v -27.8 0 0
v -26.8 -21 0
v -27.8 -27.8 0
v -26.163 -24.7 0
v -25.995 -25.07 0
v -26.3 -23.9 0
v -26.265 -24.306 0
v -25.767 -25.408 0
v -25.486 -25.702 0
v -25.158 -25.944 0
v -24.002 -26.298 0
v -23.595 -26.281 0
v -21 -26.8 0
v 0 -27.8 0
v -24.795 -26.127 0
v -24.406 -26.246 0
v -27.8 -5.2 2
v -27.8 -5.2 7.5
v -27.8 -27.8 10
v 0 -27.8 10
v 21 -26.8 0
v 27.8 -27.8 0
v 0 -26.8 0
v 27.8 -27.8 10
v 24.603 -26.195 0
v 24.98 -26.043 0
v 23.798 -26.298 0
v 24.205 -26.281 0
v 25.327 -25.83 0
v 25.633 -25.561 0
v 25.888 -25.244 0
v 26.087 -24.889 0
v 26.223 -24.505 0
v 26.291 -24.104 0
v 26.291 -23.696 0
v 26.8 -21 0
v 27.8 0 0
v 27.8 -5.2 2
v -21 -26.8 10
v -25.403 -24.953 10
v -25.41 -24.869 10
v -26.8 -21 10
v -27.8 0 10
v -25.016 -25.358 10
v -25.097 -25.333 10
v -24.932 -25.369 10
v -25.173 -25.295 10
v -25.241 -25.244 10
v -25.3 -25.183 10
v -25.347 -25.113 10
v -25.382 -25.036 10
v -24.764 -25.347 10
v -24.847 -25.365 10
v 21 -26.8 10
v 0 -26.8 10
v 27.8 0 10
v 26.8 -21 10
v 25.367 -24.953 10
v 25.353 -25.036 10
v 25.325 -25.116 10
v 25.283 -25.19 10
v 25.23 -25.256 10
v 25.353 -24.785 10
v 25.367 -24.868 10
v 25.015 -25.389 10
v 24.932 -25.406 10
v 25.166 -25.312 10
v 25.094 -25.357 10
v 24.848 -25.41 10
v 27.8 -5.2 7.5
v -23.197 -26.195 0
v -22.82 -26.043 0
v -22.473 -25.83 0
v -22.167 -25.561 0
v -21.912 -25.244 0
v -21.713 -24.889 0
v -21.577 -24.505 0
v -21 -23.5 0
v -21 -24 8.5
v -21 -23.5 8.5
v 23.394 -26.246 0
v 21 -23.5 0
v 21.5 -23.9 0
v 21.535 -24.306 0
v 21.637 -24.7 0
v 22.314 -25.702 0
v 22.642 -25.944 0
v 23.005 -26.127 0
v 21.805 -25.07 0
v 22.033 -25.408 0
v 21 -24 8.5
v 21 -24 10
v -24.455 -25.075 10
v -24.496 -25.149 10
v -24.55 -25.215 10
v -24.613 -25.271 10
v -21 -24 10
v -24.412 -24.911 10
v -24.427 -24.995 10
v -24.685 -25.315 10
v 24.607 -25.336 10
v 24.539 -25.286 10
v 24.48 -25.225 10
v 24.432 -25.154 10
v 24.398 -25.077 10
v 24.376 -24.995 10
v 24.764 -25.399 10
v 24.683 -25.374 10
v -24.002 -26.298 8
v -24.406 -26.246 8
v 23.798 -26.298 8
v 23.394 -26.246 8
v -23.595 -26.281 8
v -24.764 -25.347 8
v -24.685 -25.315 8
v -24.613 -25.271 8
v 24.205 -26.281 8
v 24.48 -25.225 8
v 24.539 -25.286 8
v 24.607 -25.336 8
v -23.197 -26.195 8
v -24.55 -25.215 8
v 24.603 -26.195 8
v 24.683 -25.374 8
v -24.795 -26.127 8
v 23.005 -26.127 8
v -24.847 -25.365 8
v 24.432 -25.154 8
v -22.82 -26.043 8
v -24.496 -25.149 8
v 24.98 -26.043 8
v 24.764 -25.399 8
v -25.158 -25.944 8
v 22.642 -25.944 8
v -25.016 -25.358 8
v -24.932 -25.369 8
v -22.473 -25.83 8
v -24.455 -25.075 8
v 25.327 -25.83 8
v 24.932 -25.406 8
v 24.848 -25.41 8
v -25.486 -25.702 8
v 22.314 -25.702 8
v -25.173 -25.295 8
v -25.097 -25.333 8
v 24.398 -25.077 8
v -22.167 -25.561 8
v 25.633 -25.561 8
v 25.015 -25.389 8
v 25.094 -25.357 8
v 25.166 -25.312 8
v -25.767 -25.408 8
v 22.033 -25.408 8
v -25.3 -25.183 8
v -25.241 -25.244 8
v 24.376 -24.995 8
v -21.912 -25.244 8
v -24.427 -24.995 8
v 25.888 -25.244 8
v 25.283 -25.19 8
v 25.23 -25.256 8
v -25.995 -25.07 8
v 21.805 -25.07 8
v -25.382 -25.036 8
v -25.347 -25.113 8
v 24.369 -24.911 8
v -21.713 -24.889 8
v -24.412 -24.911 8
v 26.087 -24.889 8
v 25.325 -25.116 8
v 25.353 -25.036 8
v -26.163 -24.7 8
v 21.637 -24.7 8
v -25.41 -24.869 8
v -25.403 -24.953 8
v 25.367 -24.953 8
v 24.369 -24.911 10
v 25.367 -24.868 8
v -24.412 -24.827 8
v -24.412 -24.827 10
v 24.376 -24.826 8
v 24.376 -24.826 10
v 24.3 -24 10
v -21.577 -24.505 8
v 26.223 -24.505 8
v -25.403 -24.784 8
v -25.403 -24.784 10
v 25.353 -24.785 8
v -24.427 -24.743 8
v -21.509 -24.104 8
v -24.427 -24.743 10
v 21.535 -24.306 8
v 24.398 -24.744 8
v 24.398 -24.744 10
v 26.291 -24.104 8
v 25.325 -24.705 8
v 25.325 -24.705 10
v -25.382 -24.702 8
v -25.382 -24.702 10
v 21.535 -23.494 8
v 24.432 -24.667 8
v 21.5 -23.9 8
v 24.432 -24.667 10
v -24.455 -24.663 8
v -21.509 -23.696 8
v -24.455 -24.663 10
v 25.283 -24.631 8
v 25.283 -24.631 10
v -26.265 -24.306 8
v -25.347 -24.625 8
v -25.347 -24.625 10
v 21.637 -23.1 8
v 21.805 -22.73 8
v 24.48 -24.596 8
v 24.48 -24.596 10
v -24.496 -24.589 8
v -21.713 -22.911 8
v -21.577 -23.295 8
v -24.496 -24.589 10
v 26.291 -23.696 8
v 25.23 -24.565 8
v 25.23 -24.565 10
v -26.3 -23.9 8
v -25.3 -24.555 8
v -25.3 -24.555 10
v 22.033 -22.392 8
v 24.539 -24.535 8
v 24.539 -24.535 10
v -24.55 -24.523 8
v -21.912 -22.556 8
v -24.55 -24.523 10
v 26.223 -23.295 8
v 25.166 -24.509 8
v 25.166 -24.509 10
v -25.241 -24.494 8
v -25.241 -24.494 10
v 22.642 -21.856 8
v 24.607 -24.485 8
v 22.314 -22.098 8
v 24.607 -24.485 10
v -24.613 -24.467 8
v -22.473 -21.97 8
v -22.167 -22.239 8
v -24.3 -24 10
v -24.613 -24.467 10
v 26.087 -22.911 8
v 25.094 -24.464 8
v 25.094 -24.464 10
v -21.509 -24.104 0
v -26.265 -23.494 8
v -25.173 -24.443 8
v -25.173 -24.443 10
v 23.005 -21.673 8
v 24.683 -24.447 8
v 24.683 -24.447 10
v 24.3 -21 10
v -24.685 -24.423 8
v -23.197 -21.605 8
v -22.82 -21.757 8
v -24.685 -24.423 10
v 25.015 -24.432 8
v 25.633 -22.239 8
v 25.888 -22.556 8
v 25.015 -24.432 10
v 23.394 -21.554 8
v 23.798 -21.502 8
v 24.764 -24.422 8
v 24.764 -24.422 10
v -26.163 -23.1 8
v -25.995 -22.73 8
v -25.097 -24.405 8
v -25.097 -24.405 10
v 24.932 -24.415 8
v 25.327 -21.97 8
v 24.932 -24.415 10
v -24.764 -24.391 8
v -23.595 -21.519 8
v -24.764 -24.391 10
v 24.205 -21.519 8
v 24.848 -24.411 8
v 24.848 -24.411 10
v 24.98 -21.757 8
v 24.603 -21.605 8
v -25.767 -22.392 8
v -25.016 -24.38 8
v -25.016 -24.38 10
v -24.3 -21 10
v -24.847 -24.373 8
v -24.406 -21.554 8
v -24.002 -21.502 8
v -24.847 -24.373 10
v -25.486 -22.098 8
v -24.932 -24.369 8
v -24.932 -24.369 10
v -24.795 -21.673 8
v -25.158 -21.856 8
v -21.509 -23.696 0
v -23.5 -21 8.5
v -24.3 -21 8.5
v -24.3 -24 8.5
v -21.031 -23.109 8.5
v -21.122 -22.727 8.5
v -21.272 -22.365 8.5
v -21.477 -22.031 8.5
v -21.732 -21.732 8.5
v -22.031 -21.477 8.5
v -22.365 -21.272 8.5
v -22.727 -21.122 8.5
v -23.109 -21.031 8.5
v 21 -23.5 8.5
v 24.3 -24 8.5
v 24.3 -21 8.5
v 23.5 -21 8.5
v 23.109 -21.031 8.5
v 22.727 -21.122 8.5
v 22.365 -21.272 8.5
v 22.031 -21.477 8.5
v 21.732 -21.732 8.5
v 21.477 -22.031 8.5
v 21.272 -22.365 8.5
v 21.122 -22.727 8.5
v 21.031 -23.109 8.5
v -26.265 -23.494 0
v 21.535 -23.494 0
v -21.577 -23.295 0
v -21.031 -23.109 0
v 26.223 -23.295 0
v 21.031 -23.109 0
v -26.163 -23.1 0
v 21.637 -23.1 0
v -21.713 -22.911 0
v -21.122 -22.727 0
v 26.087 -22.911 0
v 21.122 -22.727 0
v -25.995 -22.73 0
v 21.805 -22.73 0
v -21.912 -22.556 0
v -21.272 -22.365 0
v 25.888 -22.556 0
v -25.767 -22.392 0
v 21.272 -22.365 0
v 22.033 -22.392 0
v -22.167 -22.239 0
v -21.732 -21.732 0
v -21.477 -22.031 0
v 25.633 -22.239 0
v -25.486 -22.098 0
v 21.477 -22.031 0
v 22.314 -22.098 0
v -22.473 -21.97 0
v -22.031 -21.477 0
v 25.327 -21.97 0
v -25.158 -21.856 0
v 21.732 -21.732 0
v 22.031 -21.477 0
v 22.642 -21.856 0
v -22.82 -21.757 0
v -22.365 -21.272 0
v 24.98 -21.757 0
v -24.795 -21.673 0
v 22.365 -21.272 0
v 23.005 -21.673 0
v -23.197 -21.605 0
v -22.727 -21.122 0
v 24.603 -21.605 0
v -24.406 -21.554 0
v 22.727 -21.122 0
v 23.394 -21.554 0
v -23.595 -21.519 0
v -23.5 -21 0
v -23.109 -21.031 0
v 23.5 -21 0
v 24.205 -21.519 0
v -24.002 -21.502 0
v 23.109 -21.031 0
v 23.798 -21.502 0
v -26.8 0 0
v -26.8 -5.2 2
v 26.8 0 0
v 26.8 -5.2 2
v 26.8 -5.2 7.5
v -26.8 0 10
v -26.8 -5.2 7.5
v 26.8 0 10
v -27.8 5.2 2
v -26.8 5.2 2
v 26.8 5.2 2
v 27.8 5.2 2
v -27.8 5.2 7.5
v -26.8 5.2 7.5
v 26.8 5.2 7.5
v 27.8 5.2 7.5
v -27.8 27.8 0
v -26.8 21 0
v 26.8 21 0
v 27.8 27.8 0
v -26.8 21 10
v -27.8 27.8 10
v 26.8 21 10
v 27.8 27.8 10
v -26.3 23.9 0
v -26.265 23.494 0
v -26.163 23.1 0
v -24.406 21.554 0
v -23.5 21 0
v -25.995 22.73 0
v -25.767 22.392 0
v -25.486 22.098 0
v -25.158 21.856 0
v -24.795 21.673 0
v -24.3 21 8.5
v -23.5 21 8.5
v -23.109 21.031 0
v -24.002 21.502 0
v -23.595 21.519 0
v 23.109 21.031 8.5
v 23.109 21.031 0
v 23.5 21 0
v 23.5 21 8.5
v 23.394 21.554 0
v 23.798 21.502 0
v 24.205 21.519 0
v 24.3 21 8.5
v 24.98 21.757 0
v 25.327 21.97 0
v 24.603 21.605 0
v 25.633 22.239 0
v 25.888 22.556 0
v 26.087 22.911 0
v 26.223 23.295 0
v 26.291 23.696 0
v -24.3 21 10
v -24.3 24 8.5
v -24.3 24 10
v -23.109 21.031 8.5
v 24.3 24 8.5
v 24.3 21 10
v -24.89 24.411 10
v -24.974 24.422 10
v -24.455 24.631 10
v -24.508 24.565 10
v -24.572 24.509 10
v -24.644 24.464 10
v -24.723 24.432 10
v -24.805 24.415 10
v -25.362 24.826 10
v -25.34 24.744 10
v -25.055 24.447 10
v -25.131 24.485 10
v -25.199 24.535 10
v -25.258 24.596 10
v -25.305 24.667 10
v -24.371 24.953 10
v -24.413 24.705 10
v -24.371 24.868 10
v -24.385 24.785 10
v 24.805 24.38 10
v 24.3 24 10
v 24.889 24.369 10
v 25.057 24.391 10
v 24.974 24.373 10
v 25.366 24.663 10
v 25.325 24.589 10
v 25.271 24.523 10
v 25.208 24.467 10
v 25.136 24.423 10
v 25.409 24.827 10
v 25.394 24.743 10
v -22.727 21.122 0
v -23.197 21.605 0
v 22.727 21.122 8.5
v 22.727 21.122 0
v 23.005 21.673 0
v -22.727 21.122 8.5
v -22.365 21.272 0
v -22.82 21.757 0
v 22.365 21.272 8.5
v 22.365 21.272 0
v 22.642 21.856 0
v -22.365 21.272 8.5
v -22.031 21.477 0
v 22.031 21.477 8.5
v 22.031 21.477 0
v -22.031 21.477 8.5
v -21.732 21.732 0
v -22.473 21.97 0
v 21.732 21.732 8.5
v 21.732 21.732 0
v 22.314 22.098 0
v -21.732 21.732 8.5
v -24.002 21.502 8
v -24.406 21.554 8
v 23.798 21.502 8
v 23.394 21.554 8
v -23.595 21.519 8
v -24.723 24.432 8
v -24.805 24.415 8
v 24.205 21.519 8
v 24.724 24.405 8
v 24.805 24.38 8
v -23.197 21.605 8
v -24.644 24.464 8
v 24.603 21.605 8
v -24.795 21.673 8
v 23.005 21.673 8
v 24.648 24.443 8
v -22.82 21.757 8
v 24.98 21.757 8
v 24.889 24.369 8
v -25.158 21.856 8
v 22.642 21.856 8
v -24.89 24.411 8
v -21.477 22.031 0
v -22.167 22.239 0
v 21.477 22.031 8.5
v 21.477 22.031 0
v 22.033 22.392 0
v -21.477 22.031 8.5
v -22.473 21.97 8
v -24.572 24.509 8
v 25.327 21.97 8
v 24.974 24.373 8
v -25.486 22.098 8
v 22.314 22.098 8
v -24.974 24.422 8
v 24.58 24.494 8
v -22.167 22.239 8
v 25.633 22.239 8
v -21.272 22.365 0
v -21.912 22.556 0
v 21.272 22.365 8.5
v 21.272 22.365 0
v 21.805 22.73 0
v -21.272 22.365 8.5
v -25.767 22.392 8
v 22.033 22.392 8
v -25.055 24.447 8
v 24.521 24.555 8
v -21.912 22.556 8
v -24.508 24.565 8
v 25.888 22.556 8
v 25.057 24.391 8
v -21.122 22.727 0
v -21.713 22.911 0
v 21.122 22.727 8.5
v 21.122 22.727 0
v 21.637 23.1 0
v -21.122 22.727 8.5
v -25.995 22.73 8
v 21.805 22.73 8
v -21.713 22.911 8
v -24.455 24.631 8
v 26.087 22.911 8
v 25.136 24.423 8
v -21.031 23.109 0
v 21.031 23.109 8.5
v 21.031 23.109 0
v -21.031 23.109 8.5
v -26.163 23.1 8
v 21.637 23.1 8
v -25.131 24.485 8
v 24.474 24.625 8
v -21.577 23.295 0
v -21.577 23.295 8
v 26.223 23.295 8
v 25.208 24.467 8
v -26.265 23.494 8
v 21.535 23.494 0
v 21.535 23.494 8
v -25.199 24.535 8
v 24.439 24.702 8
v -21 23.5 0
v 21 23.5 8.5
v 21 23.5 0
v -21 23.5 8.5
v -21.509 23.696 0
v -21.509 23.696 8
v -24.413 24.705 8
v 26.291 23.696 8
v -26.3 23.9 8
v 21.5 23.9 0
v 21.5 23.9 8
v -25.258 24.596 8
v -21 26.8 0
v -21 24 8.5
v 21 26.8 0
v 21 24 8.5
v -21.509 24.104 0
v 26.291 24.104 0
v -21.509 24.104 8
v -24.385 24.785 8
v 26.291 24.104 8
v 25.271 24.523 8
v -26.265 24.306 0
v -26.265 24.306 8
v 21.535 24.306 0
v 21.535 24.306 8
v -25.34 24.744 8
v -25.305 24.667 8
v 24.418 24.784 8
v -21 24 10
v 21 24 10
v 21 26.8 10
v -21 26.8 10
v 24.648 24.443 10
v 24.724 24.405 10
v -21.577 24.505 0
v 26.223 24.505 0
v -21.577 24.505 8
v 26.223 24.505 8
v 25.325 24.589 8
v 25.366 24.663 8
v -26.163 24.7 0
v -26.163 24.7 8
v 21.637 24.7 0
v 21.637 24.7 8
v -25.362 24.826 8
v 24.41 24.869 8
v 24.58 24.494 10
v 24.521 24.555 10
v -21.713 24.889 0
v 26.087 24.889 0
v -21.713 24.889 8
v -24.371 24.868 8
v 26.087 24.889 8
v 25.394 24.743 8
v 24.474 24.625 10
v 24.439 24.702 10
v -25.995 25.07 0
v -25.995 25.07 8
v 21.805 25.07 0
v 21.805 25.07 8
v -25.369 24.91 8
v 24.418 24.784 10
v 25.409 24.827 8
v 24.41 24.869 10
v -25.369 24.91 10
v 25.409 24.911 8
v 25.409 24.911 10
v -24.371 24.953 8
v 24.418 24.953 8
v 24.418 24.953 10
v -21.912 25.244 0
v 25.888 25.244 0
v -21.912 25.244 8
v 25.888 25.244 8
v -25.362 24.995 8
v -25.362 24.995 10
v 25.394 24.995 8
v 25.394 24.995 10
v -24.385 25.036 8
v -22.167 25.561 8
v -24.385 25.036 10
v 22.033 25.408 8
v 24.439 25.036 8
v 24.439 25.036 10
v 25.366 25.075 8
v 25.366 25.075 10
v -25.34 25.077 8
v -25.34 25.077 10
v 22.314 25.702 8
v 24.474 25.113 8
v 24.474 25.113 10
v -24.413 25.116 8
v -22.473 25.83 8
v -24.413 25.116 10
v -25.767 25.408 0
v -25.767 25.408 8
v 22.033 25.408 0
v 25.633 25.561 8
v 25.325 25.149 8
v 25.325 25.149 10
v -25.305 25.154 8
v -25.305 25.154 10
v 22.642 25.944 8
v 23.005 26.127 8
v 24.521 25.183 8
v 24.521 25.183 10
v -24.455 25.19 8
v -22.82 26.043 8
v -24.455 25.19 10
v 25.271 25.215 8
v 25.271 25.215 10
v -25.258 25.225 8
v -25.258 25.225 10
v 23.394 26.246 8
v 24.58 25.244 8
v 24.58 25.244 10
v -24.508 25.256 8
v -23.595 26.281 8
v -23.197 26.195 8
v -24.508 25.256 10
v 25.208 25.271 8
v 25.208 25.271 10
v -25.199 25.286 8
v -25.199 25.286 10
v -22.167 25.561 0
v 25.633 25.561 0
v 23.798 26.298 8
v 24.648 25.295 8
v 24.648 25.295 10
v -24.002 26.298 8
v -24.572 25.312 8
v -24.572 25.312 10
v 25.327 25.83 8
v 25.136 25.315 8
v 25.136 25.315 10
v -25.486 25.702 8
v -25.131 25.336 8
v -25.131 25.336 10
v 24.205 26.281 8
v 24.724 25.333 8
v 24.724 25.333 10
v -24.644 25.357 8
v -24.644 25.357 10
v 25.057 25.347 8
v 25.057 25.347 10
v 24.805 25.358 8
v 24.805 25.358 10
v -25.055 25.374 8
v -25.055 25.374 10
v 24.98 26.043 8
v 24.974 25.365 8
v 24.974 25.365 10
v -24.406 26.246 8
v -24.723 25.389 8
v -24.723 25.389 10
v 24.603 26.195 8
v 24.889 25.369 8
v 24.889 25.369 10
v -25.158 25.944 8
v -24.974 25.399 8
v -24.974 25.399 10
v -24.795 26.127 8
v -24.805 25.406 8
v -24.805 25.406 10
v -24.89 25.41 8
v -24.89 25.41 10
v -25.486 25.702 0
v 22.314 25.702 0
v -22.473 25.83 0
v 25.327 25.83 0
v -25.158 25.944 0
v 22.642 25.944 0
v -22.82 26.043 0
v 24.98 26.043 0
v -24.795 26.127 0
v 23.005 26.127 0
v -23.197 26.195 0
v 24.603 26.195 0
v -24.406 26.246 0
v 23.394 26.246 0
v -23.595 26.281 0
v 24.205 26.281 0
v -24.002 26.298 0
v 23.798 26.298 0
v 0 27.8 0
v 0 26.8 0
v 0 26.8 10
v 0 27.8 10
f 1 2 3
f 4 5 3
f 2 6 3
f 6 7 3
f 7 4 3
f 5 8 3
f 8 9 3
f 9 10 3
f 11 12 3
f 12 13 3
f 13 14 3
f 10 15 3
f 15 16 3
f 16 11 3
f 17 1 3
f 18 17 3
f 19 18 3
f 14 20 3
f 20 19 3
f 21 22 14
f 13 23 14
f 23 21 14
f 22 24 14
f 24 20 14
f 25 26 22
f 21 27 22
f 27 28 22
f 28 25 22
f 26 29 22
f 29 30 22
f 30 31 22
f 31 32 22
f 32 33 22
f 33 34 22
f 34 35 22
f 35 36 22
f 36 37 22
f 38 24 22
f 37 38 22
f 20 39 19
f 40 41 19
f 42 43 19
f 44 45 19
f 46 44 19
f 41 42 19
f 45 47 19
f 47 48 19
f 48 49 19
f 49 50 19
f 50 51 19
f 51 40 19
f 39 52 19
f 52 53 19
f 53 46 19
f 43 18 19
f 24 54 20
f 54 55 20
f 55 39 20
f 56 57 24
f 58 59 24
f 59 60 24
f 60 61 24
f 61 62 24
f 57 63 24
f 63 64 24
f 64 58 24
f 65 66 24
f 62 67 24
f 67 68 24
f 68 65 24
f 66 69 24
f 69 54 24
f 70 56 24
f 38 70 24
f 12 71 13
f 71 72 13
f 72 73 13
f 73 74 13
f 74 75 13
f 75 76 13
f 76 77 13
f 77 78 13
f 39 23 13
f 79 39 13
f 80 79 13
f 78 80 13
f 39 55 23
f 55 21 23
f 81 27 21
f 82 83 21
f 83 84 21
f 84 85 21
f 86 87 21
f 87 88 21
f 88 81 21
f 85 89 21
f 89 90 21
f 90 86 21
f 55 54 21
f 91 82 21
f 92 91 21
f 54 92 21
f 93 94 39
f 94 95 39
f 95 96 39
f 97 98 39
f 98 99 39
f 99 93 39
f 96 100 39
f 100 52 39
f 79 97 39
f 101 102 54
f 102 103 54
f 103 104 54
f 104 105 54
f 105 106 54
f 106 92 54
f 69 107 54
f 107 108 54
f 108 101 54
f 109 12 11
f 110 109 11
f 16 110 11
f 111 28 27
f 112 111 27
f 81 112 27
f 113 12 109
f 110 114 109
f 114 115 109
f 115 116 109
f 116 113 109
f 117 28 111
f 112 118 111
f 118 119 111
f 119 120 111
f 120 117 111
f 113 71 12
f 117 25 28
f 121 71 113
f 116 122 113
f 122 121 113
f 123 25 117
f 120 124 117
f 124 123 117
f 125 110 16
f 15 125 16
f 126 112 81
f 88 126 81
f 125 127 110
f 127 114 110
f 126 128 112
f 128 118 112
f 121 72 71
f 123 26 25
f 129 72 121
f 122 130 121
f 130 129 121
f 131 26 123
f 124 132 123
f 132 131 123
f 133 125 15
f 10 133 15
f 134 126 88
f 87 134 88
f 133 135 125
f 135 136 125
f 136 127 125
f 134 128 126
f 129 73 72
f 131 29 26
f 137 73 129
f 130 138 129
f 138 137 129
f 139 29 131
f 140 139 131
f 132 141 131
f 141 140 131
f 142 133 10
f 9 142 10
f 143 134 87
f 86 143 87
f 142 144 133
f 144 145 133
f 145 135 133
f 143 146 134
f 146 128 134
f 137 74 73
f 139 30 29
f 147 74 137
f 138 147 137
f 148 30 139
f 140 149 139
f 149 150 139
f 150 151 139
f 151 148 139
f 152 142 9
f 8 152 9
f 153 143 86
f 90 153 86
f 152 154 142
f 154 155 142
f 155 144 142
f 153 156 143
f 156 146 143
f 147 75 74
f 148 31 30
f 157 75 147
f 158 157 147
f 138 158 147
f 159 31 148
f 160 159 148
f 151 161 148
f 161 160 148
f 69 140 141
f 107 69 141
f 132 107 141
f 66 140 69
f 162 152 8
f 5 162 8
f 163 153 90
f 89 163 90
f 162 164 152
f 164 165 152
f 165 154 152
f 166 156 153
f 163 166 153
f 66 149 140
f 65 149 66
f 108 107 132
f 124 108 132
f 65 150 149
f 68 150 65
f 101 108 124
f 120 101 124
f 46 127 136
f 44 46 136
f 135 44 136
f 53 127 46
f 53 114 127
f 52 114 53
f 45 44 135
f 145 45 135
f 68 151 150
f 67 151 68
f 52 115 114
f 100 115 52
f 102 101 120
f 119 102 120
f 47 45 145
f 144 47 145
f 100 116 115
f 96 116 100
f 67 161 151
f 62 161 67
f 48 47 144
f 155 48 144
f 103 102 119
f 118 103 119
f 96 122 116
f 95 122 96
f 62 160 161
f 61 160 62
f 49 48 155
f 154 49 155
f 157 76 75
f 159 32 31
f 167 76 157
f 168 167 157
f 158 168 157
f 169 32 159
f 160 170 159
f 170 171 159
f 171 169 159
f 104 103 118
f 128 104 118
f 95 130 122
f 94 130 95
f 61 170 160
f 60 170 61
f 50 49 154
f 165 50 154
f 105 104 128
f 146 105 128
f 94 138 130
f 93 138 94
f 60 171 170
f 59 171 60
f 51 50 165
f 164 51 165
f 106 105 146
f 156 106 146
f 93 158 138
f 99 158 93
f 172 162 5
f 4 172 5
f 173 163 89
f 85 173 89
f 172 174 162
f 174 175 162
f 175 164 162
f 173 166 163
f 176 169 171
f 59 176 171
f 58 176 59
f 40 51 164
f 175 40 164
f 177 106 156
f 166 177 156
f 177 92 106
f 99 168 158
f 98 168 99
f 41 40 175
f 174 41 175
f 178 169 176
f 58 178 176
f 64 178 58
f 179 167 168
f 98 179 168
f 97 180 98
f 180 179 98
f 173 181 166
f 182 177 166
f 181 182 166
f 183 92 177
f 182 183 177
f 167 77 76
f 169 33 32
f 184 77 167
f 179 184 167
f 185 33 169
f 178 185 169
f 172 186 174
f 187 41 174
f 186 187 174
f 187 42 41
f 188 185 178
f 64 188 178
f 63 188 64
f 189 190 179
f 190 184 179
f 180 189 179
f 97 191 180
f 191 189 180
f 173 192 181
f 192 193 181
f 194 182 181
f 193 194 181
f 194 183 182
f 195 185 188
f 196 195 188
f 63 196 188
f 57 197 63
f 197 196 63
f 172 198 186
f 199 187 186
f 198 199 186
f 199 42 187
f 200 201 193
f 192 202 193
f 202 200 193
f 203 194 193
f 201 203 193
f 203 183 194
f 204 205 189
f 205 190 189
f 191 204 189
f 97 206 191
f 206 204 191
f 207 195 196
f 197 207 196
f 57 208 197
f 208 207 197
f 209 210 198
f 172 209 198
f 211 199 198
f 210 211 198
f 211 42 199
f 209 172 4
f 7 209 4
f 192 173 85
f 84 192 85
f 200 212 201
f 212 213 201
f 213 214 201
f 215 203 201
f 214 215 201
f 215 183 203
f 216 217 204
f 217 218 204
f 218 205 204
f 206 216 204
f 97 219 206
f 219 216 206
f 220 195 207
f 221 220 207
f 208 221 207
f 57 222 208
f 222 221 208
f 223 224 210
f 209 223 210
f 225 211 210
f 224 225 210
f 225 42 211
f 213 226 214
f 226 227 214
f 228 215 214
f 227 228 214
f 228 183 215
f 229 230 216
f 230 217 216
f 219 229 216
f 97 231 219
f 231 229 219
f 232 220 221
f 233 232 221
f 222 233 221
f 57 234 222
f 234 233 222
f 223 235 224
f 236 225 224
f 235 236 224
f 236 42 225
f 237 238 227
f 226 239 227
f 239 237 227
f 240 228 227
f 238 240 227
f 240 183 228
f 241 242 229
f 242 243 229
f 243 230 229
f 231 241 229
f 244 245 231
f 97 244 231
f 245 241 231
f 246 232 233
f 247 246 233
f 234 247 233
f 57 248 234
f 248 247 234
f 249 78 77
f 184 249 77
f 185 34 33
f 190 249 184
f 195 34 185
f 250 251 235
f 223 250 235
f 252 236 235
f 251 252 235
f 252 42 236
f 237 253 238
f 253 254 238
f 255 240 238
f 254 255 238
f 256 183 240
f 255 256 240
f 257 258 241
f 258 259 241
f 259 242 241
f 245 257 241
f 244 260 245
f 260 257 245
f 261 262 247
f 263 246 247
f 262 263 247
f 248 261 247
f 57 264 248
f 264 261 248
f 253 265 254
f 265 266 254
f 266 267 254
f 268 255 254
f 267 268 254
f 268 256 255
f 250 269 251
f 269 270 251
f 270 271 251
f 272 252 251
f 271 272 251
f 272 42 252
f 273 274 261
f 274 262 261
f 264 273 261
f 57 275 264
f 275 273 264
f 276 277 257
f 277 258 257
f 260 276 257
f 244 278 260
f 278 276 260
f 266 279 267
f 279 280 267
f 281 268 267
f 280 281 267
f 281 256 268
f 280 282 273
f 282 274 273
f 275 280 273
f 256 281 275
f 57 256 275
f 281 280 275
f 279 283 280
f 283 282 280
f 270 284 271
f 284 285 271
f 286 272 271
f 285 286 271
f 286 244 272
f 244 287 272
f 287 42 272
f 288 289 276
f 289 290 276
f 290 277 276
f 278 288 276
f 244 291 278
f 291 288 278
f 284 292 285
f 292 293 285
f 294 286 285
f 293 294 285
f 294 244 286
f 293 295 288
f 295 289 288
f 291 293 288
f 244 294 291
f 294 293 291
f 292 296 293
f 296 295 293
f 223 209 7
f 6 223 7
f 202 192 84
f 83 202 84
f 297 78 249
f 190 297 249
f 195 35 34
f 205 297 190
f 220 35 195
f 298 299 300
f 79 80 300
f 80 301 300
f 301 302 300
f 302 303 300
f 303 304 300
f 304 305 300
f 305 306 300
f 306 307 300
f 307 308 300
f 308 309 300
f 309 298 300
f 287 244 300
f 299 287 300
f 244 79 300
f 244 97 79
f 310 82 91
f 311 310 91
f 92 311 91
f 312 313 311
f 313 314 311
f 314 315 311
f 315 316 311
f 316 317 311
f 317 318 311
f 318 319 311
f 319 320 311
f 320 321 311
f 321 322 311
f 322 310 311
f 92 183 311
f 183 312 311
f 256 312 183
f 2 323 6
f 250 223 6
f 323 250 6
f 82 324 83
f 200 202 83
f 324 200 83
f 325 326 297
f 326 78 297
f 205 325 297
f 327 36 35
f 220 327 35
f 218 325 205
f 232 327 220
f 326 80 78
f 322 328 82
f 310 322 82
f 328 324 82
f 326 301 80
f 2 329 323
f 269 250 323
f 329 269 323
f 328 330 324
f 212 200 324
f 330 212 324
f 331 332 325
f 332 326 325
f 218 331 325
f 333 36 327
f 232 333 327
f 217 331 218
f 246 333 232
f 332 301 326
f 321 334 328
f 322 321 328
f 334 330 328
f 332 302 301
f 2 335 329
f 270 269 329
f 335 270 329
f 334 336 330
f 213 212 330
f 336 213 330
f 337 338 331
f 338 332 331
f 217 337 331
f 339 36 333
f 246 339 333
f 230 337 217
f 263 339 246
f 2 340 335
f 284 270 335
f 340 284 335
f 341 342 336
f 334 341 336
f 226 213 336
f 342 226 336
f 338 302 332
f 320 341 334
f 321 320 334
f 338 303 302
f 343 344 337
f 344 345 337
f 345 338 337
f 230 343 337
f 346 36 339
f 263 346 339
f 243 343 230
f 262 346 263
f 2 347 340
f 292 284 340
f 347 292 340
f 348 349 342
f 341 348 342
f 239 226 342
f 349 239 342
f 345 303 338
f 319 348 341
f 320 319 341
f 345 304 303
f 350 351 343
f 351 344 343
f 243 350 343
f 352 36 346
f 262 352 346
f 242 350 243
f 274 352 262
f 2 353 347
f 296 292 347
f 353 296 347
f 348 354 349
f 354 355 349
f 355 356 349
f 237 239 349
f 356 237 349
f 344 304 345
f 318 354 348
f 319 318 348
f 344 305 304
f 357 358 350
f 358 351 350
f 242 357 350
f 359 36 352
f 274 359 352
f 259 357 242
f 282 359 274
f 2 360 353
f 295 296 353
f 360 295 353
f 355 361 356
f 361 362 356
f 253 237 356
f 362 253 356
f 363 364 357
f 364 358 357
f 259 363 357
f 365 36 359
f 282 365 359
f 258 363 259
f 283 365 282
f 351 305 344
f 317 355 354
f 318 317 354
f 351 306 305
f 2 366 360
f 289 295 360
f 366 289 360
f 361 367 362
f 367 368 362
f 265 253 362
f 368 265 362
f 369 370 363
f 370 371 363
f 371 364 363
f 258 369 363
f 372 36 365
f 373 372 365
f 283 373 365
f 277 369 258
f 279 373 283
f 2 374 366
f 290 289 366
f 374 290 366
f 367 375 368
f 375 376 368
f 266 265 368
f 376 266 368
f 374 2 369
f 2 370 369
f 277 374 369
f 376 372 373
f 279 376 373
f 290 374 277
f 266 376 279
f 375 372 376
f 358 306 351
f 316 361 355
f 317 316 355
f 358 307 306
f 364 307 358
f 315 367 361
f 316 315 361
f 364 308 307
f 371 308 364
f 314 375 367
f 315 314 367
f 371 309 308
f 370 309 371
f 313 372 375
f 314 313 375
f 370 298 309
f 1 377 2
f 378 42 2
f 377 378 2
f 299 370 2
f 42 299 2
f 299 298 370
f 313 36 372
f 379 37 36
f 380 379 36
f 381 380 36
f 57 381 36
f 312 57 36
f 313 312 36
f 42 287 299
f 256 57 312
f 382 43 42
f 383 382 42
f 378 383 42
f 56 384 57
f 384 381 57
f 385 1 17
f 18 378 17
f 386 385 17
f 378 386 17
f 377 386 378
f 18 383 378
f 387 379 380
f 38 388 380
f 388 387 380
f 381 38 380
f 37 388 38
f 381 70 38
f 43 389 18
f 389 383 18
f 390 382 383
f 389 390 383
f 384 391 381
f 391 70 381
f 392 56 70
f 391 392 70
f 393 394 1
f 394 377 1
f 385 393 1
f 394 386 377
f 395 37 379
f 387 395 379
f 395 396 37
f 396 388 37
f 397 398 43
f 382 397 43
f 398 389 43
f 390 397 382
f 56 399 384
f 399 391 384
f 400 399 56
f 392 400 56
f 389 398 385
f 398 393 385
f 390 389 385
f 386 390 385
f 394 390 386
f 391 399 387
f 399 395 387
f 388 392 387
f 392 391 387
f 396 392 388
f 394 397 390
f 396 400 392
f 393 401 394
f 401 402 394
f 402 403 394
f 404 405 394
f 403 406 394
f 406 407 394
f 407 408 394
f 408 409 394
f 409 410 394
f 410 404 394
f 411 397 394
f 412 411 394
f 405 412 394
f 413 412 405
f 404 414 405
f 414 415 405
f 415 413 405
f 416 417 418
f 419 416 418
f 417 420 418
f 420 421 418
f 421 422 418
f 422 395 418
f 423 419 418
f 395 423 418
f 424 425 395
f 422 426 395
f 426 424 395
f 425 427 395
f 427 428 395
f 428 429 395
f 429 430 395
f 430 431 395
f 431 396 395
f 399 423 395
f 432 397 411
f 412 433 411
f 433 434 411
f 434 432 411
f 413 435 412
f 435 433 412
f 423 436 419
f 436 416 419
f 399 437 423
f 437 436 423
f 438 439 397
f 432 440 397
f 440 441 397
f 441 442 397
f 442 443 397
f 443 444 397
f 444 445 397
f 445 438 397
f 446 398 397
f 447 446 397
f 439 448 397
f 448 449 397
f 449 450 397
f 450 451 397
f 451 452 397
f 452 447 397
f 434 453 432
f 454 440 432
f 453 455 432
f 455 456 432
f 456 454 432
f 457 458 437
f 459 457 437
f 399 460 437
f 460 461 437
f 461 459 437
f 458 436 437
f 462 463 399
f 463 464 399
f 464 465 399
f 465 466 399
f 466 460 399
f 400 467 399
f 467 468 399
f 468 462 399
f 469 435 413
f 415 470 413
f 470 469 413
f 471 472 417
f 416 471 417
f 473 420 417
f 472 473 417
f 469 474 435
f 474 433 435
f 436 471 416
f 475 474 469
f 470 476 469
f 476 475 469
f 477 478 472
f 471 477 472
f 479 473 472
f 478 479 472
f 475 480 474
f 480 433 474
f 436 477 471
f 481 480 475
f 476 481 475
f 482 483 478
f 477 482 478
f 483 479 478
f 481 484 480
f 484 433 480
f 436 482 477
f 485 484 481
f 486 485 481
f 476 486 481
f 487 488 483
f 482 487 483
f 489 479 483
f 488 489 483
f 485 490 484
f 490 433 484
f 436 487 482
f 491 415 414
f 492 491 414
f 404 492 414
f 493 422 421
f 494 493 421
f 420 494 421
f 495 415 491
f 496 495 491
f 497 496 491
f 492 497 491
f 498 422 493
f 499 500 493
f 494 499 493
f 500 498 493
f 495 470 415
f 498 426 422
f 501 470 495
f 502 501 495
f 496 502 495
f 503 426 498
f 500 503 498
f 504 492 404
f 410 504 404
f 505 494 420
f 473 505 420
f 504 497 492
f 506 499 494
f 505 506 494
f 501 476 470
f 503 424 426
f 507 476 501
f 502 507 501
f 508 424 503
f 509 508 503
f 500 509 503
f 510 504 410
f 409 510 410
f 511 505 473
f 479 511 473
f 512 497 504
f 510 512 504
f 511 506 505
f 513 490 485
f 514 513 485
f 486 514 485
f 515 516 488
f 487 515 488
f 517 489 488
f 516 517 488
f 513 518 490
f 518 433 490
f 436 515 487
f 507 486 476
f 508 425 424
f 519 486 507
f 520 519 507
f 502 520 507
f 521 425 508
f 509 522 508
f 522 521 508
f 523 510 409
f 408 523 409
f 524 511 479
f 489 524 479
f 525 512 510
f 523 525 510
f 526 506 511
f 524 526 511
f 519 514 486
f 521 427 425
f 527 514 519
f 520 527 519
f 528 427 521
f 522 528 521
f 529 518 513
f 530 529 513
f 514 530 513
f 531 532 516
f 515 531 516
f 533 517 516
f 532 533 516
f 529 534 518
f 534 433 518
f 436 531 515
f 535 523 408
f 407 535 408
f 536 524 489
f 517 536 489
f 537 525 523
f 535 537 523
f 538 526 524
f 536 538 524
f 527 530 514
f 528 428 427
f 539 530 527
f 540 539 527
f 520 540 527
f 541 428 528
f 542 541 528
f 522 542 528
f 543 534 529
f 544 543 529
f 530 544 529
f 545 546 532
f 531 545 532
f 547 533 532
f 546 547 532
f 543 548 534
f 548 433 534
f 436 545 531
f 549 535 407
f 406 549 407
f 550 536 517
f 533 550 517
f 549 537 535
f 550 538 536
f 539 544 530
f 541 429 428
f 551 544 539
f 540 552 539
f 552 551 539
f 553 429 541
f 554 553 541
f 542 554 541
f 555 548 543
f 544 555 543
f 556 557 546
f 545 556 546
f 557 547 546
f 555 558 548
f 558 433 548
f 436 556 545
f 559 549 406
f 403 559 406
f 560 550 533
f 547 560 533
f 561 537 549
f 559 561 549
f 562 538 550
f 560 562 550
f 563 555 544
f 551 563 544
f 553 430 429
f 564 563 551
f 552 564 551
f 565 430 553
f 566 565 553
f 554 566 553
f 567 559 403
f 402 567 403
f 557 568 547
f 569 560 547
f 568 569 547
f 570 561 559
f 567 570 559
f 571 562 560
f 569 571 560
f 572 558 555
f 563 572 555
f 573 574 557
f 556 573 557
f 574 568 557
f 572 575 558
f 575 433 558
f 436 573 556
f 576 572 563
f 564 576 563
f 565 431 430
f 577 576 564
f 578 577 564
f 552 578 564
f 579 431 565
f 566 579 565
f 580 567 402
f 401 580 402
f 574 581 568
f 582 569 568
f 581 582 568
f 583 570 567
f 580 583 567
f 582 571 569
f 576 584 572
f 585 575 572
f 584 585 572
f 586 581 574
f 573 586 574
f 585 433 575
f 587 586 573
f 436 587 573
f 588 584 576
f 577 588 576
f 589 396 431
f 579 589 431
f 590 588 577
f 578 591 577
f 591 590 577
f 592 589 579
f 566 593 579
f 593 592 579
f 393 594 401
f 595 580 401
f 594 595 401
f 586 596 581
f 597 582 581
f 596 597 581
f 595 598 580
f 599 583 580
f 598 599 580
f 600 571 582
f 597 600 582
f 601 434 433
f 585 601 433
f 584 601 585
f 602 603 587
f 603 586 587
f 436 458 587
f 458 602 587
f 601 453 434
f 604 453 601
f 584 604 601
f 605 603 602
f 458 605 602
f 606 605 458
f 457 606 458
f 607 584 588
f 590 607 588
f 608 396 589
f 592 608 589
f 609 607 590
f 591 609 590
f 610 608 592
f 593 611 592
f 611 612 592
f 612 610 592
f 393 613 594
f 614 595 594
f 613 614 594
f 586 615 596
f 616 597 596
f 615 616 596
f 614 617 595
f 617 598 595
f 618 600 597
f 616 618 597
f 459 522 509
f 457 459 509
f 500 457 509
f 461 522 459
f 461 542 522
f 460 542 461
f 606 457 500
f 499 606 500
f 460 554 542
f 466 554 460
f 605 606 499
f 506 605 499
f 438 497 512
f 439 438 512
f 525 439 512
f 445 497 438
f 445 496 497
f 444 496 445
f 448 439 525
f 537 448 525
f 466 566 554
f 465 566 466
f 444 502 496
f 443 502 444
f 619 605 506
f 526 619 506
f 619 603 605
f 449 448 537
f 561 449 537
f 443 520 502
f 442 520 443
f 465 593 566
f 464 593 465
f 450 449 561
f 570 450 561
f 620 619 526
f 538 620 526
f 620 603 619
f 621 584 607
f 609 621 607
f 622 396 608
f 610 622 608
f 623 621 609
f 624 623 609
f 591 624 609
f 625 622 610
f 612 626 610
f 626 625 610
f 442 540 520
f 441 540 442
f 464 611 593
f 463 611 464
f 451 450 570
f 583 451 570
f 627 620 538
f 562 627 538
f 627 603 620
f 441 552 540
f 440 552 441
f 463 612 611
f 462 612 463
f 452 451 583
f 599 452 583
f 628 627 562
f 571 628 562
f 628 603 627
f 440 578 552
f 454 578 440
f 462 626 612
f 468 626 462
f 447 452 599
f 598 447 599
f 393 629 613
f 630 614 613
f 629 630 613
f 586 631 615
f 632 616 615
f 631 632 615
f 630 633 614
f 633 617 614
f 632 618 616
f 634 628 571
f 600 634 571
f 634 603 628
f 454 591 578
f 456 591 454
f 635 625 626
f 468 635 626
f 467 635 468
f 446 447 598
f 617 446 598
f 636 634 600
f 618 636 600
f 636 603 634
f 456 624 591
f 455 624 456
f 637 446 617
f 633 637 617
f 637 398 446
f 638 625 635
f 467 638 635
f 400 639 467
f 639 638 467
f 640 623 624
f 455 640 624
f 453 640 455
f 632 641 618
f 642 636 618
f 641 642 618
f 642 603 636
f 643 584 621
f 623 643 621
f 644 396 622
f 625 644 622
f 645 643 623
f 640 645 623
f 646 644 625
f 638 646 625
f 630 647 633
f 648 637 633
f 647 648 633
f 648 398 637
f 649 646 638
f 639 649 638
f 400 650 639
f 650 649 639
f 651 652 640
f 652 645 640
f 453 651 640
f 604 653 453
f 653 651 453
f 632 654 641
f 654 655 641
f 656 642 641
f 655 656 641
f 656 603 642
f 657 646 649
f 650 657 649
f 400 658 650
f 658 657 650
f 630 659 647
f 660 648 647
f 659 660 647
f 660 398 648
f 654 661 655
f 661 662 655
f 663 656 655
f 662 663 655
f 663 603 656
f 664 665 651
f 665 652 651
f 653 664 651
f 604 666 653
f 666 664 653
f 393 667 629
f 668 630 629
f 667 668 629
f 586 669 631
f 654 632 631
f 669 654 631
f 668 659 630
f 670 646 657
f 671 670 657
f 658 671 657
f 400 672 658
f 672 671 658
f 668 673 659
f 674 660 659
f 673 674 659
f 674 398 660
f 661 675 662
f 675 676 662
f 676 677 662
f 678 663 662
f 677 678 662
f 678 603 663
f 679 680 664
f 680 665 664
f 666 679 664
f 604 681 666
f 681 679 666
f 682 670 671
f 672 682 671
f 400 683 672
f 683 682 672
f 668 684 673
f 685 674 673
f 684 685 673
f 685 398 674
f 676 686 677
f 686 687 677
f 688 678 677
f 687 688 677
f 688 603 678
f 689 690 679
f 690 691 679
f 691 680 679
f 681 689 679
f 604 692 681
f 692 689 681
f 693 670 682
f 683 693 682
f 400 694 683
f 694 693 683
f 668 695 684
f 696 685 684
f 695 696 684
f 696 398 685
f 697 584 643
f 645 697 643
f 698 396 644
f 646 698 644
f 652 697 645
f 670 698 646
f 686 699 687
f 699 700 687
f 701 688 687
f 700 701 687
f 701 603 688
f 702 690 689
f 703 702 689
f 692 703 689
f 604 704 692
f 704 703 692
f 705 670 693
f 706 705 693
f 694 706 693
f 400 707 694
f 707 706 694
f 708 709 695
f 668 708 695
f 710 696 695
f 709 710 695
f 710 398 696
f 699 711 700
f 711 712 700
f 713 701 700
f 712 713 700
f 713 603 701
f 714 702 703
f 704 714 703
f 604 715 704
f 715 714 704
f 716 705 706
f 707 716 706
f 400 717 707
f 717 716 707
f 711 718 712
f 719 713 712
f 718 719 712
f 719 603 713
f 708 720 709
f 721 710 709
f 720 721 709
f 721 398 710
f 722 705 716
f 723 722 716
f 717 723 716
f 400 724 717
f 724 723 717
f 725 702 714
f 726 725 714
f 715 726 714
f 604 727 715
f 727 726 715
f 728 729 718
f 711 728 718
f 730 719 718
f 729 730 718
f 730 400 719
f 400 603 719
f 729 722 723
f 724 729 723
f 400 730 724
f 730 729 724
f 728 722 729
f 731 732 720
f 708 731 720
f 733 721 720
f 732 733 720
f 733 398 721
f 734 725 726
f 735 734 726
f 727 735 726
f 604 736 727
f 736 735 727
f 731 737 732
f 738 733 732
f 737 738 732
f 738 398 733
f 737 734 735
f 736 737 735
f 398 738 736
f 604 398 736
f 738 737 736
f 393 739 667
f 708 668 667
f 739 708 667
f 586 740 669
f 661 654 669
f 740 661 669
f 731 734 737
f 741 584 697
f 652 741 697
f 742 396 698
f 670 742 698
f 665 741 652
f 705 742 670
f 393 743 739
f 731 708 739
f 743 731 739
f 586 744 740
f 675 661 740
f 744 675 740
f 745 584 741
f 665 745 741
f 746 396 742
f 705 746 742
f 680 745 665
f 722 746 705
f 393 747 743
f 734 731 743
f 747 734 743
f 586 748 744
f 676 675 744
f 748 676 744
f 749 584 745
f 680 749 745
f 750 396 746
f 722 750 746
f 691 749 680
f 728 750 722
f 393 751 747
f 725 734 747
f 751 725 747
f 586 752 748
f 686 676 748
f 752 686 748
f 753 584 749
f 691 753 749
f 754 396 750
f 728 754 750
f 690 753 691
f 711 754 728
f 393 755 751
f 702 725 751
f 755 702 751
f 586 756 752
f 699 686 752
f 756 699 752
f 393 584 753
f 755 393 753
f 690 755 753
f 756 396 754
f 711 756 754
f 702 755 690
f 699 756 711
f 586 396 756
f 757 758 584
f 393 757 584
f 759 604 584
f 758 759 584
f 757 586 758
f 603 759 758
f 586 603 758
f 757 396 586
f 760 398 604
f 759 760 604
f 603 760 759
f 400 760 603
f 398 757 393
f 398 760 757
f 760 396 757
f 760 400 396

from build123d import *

# Parameters (mm, degrees)
SKICA1_W                 = 55.6
SKICA1_H                 = 55.6
SKICA1_W_2               = 53.6
SKICA1_H_2               = 53.6
P_IDAT_VYSUNUT_M1_DEPTH  = 10
SKICA3_W                 = 5.8
SKICA3_H                 = 5.8
P_IDAT_VYSUNUT_M2_DEPTH  = 10
ZAOBLIT1_R               = 2.5
SKICA4_R                 = 2.4
ODEBRAT_VYSUNUT_M1_DEPTH = 8
SKICA5_R                 = 0.5
ODEBRAT_VYSUNUT_M2_DEPTH = 2
SKICA6_W                 = 48.6
SKICA6_H                 = 48
ODEBRAT_VYSUNUT_M3_DEPTH = 1.5
SKICA7_W                 = 5.5
SKICA7_H                 = 10.4
ODEBRAT_VYSUNUT_M4_DEPTH = 55.6


with BuildPart() as part:
    # Skica1 → Přidat vysunutím1 (new body)
    with BuildSketch(Plane.XY):
        Rectangle(SKICA1_W, SKICA1_H)
        Rectangle(SKICA1_W_2, SKICA1_H_2, mode=Mode.SUBTRACT)
    extrude(amount=P_IDAT_VYSUNUT_M1_DEPTH)

    # Skica3 → Přidat vysunutím2 (add)
    with BuildSketch(Plane(origin=(0, 0, 0), x_dir=(-1, 0, 0), z_dir=(0, 0, -1))):
        with Locations((23.9, -23.9)):
            Rectangle(SKICA3_W, SKICA3_H)
        with Locations((23.9, 23.9)):
            Rectangle(SKICA3_W, SKICA3_H)
        with Locations((-23.9, -23.9)):
            Rectangle(SKICA3_W, SKICA3_H)
        with Locations((-23.9, 23.9)):
            Rectangle(SKICA3_W, SKICA3_H)
    extrude(amount=-P_IDAT_VYSUNUT_M2_DEPTH)

    # Zaoblit1
    zaoblit1_edges = [part.edges().sort_by_distance(p)[0] for p in [
        (-21, 21, 5),
        (-21, -21, 5),
        (21, -21, 5),
        (21, 21, 5),
    ]]
    fillet(zaoblit1_edges, radius=ZAOBLIT1_R)

    # Skica4 → Odebrat vysunutím1 (cut)
    with BuildSketch(Plane(origin=(0, 0, 0), x_dir=(-1, 0, 0), z_dir=(0, 0, -1))):
        with Locations((23.9, 23.9)):
            Circle(SKICA4_R)
        with Locations((23.9, -23.9)):
            Circle(SKICA4_R)
        with Locations((-23.9, -23.9)):
            Circle(SKICA4_R)
        with Locations((-23.9, 23.9)):
            Circle(SKICA4_R)
    extrude(amount=-ODEBRAT_VYSUNUT_M1_DEPTH, mode=Mode.SUBTRACT)

    # Skica5 → Odebrat vysunutím2 (cut)
    with BuildSketch(Plane(origin=(0, 0, 8), x_dir=(-1, 0, 0), z_dir=(0, 0, -1))):
        with Locations((24.868963017, 24.910500208)):
            Circle(SKICA5_R)
        with Locations((-24.910500208, 24.868963017)):
            Circle(SKICA5_R)
        with Locations((24.910500208, -24.868963017)):
            Circle(SKICA5_R)
        with Locations((-24.868963017, -24.910500208)):
            Circle(SKICA5_R)
    extrude(amount=-ODEBRAT_VYSUNUT_M2_DEPTH, mode=Mode.SUBTRACT)

    # Skica6 → Odebrat vysunutím3 (cut)
    with BuildSketch(Plane.XY.offset(10)):
        Rectangle(SKICA6_W, SKICA6_H)
    extrude(amount=-ODEBRAT_VYSUNUT_M3_DEPTH, mode=Mode.SUBTRACT)

    # Skica7 → Odebrat vysunutím4 (cut)
    with BuildSketch(Plane(origin=(27.8, 0, 0), x_dir=(0, 0, -1), z_dir=(1, 0, 0))):
        with Locations((-4.75, 0)):
            Rectangle(SKICA7_W, SKICA7_H)
    extrude(amount=-ODEBRAT_VYSUNUT_M4_DEPTH, mode=Mode.SUBTRACT)


solid = part.part
